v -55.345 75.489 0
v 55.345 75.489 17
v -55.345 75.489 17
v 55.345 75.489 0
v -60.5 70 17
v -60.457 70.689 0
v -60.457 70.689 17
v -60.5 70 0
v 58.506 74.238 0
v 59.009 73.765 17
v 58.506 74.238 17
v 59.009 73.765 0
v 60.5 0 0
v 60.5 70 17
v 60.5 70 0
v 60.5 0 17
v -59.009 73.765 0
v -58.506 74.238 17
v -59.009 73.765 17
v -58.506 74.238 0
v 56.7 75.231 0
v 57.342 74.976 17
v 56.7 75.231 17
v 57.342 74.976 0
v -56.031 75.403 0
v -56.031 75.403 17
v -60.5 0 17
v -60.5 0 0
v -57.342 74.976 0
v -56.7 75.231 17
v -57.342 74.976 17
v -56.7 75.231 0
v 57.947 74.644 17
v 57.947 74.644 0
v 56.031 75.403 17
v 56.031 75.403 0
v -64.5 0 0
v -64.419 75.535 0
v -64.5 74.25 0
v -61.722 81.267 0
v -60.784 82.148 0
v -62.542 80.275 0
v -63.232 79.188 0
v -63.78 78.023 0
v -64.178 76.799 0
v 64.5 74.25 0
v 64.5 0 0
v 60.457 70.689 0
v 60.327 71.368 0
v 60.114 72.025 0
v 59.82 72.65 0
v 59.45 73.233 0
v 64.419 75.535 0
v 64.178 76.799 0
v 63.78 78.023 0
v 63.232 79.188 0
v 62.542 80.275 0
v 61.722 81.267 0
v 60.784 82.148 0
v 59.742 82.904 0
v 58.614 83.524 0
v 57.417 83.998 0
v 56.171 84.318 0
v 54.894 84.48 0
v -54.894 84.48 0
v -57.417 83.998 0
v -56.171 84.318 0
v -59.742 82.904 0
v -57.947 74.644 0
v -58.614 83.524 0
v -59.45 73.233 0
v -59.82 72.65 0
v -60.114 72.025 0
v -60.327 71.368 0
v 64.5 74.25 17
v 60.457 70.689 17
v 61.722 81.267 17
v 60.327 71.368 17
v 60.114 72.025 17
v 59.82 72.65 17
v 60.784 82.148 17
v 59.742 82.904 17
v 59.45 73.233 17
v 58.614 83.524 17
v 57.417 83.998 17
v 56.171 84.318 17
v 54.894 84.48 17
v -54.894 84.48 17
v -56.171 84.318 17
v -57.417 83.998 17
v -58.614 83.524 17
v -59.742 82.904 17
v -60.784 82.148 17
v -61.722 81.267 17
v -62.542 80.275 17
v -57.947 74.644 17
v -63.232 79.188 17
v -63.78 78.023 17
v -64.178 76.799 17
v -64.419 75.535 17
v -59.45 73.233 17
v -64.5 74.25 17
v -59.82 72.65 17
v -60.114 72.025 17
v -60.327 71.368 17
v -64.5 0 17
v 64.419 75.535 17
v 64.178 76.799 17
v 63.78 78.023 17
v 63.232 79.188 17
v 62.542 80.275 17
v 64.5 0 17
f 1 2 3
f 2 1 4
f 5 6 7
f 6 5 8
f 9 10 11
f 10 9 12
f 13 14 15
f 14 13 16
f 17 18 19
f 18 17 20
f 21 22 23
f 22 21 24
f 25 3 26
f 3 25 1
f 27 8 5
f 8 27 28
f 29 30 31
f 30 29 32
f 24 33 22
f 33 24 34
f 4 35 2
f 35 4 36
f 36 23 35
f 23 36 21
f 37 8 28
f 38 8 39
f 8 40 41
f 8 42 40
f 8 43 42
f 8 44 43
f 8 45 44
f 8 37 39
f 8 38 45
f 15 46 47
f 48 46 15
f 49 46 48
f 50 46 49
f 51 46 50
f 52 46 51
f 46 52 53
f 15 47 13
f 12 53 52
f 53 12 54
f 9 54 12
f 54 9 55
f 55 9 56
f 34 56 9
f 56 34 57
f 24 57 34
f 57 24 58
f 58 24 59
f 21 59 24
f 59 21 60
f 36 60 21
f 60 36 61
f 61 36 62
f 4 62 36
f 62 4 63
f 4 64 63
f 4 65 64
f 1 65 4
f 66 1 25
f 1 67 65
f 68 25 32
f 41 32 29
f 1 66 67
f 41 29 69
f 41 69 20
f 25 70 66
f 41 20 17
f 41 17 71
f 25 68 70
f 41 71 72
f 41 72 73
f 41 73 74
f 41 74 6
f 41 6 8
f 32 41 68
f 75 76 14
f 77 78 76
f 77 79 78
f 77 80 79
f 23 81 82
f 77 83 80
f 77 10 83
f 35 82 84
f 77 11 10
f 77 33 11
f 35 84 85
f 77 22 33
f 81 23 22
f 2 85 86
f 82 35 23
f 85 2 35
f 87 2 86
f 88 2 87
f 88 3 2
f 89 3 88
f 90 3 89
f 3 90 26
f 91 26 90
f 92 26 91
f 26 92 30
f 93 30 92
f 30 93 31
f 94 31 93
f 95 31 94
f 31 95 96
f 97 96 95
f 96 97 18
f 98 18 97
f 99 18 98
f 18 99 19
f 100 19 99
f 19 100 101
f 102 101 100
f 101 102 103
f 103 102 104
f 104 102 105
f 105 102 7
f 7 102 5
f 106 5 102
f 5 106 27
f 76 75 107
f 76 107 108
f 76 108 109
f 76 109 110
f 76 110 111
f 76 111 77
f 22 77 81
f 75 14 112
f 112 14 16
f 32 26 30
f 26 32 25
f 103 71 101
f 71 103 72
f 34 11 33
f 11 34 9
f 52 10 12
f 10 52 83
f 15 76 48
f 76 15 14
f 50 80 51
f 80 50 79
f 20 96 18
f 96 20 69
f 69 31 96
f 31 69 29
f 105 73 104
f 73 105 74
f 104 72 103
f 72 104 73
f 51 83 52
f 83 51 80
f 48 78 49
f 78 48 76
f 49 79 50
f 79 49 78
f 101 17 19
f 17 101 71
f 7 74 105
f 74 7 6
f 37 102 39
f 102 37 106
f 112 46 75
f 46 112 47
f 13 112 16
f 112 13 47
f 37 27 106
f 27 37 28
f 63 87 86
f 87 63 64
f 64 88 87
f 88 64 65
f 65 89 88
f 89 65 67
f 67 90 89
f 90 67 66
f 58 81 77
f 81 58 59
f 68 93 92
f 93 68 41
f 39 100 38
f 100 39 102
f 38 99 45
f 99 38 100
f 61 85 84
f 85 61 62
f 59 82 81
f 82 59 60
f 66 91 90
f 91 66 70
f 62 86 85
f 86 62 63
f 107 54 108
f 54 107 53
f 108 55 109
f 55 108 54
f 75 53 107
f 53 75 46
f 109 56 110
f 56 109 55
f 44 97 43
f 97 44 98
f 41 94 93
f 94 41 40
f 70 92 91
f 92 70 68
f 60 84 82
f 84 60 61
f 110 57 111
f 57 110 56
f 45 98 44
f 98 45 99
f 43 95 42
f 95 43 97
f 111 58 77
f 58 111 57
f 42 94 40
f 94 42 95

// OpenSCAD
$fn = 50;


difference() {
	union() {
		hull() {
			translate(v = [-54.2500000000, 74.2500000000, 0]) {
				cylinder(h = 17.0000000000, r = 10.2500000000);
			}
			translate(v = [54.2500000000, 74.2500000000, 0]) {
				cylinder(h = 17.0000000000, r = 10.2500000000);
			}
			translate(v = [-54.2500000000, -74.2500000000, 0]) {
				cylinder(h = 17.0000000000, r = 10.2500000000);
			}
			translate(v = [54.2500000000, -74.2500000000, 0]) {
				cylinder(h = 17.0000000000, r = 10.2500000000);
			}
		}
	}
	union() {
		hull() {
			translate(v = [-55.0000000000, 70.0000000000, 0]) {
				cylinder(h = 17.0000000000, r = 5.5000000000);
			}
			translate(v = [55.0000000000, 70.0000000000, 0]) {
				cylinder(h = 17.0000000000, r = 5.5000000000);
			}
			translate(v = [-55.0000000000, -70.0000000000, 0]) {
				cylinder(h = 17.0000000000, r = 5.5000000000);
			}
			translate(v = [55.0000000000, -70.0000000000, 0]) {
				cylinder(h = 17.0000000000, r = 5.5000000000);
			}
		}
		#translate(v = [-64.5000000000, -169.0000000000, 0]) {
			cube(size = [129.0000000000, 169.0000000000, 17.0000000000]);
		}
	}
}
